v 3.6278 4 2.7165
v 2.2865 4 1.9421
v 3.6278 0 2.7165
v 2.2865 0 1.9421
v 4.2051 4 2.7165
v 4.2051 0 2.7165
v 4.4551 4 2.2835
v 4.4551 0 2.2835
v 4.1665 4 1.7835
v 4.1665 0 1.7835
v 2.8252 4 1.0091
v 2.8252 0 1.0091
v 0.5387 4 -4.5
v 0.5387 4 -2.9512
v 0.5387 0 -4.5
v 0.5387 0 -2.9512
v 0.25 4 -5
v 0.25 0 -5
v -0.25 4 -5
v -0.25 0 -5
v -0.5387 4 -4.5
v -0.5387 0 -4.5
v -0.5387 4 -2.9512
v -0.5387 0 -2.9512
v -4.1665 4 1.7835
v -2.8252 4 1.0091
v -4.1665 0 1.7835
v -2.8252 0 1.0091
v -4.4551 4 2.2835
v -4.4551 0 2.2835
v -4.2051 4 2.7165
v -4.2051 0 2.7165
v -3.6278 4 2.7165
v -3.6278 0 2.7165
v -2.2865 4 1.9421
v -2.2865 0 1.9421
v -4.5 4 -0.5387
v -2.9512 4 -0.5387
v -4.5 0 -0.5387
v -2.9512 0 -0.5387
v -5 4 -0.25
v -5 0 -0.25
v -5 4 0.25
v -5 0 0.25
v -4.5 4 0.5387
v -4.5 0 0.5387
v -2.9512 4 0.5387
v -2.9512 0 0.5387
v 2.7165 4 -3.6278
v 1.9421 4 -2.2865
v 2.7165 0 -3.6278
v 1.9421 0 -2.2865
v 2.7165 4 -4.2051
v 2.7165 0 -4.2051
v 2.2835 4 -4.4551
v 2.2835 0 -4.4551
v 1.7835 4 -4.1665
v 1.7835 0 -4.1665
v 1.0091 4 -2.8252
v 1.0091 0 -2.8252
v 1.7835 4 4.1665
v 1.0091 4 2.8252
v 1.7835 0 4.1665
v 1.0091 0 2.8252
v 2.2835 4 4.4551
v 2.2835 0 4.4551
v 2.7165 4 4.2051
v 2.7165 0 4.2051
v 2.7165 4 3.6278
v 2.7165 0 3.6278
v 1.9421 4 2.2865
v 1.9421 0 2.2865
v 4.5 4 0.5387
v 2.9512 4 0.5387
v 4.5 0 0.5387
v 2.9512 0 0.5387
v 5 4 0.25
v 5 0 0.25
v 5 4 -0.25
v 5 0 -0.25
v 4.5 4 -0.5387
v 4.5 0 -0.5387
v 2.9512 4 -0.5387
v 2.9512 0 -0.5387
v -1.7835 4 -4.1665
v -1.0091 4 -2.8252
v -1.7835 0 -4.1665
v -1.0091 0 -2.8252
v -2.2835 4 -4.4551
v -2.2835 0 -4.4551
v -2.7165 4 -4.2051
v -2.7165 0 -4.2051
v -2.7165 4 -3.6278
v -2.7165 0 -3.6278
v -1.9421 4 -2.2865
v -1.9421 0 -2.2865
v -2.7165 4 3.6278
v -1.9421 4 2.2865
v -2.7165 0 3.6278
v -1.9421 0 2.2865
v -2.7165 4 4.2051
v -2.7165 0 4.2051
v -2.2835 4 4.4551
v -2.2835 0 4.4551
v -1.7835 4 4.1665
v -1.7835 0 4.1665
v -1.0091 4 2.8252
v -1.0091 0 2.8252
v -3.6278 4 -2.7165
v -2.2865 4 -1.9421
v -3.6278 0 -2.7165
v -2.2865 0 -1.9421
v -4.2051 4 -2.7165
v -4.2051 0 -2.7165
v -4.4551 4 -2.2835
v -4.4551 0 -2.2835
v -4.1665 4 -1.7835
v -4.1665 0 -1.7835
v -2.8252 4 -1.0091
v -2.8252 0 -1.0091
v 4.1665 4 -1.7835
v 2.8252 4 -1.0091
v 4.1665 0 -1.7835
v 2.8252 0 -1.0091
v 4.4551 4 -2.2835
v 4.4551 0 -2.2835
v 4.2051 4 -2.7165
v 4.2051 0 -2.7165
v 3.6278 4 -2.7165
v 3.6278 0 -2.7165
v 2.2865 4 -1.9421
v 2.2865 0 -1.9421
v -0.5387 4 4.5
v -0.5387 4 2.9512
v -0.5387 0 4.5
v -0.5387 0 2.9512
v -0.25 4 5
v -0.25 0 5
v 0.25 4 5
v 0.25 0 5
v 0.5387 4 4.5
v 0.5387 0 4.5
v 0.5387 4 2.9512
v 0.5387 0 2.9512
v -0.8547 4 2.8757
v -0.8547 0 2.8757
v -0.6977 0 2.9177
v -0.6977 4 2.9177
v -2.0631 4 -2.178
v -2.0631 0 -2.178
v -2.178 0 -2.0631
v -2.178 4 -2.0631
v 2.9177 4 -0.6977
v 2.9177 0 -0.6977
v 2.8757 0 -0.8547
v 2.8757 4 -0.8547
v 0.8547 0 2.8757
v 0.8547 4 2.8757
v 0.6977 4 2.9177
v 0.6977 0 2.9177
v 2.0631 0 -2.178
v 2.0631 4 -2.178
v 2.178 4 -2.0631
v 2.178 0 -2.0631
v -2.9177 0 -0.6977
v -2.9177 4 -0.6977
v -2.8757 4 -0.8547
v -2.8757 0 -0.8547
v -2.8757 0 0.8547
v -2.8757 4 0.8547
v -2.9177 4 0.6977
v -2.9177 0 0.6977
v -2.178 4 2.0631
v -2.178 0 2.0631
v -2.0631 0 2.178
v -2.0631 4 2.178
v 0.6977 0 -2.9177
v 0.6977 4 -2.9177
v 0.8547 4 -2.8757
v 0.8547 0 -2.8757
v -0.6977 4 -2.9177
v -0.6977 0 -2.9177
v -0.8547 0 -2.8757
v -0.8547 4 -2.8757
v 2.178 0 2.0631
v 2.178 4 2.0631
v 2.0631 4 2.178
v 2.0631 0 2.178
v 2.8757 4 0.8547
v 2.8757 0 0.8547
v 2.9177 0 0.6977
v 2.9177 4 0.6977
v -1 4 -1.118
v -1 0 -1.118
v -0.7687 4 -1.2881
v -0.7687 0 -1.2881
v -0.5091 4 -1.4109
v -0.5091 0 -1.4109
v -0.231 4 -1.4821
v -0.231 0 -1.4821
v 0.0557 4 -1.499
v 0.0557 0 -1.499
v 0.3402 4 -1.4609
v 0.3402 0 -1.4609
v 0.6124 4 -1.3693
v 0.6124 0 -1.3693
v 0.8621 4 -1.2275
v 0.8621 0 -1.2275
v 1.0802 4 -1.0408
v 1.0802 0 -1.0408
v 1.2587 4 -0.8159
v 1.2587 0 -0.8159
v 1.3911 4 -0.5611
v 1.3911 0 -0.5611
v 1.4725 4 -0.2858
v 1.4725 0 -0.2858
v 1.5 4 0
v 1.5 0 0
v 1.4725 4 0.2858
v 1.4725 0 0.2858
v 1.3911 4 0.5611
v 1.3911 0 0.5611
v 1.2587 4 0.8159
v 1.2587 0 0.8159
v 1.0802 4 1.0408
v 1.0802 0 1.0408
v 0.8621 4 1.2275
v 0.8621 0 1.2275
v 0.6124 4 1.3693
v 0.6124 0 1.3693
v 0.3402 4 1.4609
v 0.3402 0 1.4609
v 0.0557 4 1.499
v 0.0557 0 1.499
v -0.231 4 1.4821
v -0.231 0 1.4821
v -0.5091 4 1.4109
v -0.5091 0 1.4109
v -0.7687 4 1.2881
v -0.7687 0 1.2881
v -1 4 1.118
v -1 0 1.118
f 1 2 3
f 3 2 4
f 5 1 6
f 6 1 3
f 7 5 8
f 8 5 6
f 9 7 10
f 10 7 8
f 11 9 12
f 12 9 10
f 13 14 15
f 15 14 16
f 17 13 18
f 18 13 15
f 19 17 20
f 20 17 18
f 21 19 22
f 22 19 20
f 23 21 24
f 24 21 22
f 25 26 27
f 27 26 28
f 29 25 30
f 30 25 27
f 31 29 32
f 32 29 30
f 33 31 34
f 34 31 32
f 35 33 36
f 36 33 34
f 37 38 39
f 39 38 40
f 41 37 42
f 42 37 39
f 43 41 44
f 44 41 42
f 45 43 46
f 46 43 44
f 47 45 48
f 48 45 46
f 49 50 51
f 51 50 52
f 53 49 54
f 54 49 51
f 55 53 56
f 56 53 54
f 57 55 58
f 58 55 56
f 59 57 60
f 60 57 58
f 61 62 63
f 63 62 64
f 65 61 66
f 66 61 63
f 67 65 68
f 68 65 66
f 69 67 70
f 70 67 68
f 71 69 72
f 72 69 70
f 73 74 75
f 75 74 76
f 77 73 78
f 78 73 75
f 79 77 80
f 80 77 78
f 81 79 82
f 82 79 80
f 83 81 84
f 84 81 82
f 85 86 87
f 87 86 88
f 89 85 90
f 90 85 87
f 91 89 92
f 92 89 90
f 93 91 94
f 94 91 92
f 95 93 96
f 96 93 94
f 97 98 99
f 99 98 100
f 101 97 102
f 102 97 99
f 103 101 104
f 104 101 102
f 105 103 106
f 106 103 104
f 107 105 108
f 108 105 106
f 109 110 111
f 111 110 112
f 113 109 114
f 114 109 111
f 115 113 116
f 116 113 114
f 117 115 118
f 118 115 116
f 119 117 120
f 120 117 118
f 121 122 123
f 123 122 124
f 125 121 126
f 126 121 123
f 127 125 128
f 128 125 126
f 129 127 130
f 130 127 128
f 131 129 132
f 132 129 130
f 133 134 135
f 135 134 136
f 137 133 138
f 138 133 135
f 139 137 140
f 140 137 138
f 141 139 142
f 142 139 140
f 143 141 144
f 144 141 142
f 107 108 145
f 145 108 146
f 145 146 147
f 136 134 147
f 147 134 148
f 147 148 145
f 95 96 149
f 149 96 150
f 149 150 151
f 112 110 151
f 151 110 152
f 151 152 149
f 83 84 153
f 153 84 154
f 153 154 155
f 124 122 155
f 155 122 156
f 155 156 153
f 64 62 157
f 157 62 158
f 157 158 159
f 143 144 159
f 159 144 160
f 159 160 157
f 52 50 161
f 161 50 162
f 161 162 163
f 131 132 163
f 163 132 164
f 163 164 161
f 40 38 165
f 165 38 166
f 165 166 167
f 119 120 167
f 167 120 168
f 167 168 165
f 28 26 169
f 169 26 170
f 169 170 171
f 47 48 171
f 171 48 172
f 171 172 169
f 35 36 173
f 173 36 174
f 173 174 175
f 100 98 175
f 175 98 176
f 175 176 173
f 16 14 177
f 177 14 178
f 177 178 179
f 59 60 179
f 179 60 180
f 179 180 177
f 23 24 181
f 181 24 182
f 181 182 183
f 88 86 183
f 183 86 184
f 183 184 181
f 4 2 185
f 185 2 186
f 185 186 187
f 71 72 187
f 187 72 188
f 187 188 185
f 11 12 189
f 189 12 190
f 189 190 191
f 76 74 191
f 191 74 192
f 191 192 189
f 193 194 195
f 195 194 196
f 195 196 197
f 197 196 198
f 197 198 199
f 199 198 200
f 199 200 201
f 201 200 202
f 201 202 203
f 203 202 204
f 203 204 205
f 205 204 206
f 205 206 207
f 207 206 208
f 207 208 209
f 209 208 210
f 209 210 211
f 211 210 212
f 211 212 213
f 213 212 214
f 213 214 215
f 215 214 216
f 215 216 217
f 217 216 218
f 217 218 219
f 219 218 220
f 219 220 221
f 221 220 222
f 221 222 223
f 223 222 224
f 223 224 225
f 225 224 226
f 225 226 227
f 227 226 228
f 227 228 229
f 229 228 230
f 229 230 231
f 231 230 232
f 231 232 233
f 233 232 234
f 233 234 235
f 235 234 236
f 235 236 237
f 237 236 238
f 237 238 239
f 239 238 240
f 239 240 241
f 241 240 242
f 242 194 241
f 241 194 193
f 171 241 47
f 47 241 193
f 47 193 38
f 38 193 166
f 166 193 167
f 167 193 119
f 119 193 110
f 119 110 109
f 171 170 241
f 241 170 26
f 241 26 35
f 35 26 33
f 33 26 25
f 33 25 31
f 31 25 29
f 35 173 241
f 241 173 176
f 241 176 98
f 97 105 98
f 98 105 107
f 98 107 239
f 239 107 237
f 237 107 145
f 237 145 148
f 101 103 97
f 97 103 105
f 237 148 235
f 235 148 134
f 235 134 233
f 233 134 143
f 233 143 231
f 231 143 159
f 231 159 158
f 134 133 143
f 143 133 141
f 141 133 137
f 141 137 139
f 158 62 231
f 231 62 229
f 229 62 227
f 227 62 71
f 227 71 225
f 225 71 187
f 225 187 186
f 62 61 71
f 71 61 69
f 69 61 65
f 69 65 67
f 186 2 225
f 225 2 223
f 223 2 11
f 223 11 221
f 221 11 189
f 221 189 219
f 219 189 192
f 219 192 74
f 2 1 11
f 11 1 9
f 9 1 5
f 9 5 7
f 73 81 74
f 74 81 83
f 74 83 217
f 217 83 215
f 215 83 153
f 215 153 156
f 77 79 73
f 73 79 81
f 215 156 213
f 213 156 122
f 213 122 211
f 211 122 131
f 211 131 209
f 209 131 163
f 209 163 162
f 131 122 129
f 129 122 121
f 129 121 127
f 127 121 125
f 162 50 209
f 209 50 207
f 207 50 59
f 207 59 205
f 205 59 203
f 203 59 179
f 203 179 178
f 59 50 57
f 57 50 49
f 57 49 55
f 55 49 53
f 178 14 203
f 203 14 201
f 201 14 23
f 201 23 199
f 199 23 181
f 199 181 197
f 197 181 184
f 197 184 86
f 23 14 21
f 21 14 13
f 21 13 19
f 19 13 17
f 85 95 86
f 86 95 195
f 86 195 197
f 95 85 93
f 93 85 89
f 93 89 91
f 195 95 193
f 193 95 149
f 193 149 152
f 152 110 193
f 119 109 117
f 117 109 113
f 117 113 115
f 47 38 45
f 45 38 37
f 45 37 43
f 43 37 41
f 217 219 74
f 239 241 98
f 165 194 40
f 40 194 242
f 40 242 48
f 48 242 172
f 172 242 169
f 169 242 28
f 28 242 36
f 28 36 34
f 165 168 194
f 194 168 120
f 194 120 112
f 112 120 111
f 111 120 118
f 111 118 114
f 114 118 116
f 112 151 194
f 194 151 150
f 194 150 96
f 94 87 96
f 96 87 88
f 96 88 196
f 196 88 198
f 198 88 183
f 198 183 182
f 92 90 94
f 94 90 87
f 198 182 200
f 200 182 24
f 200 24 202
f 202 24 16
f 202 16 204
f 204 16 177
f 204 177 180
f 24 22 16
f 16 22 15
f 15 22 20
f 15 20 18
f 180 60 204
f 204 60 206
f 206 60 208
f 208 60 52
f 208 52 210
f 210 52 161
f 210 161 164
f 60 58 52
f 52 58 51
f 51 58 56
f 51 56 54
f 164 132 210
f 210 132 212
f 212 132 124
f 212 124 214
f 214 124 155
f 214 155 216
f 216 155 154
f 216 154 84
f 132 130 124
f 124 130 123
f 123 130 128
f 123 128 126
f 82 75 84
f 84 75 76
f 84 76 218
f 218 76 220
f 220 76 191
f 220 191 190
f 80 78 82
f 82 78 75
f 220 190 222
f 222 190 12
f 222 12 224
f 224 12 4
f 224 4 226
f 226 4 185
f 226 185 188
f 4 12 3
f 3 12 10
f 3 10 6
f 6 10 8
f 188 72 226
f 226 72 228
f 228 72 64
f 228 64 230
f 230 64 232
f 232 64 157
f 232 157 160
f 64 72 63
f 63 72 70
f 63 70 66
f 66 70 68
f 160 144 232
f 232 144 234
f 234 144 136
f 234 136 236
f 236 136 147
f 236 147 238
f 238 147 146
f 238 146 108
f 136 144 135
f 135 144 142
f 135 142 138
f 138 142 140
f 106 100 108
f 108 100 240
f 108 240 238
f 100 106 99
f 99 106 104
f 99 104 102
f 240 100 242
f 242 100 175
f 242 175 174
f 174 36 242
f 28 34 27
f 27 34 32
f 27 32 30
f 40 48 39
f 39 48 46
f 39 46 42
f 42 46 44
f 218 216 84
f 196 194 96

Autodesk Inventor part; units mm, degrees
ref_plane "YZ Plane" through (0, 0, 0) normal (1, 0, 0) x (0, 1, 0)
ref_plane "XZ Plane" through (0, 0, 0) normal (0, 1, 0) x (-1, 0, 0)
ref_plane "XY Plane" through (0, 0, 0) normal (0, 0, 1) x (1, 0, 0)
sketch "Esboço1" plane through (0, 0, 0) normal (0, 1, 0) x (-1, 0, 0)
  arc A0 (1, 1.118) -> (1, -1.118) centre (0, 0) ccw
  line L0 (1, 1.118) -> (1, -1.118)
  line L1 (0, 0) -> (-1.5, 0) construction
  line L2 (1.2, -1.2042) -> (1.2, 1.2042) construction
  arc A1 (1.2, 1.2042) -> (1.2, -1.2042) centre (0, 0) ccw construction
  circle A2 centre (0, 0) radius 3
  point P0 (1, 0)
  dimension "d0" = 3
  dimension "d1" = 2.5
  dimension "d2" = 0.2
  dimension "d3" = 6
extrude "Extrusão1" add sketch "Esboço1" along normal blind 4
sketch "Esboço2" plane through (0, 4, 0) normal (0, 1, 0) x (1, 0, 0)
  line L0 (0, 0) -> (-5, 0) construction
  line L1 (-5, 0) -> (-5, 0.25)
  line L2 (-5, 0.25) -> (-4.5, 0.5387)
  line L3 (-4.5, 0.5387) -> (-2.8873, 0.5387)
  line L4 (-5, 0) -> (-5, -0.25)
  line L5 (-5, -0.25) -> (-4.5, -0.5387)
  line L6 (-4.5, -0.5387) -> (-2.8873, -0.5387)
  line L7 (-4.3301, -2.5) -> (-4.4551, -2.2835)
  line L8 (-4.4551, -2.2835) -> (-4.1665, -1.7835)
  line L9 (-4.1665, -1.7835) -> (-2.7698, -0.9771)
  line L10 (-4.3301, -2.5) -> (-4.2051, -2.7165)
  line L11 (-4.2051, -2.7165) -> (-3.6278, -2.7165)
  line L12 (-3.6278, -2.7165) -> (-2.2311, -1.9102)
  line L13 (-2.5, -4.3301) -> (-2.7165, -4.2051)
  line L14 (-2.7165, -4.2051) -> (-2.7165, -3.6278)
  line L15 (-2.7165, -3.6278) -> (-1.9102, -2.2311)
  line L16 (-2.5, -4.3301) -> (-2.2835, -4.4551)
  line L17 (-2.2835, -4.4551) -> (-1.7835, -4.1665)
  line L18 (-1.7835, -4.1665) -> (-0.9771, -2.7698)
  line L19 (0, -5) -> (-0.25, -5)
  line L20 (-0.25, -5) -> (-0.5387, -4.5)
  line L21 (-0.5387, -4.5) -> (-0.5387, -2.8873)
  line L22 (0, -5) -> (0.25, -5)
  line L23 (0.25, -5) -> (0.5387, -4.5)
  line L24 (0.5387, -4.5) -> (0.5387, -2.8873)
  line L25 (2.5, -4.3301) -> (2.2835, -4.4551)
  line L26 (2.2835, -4.4551) -> (1.7835, -4.1665)
  line L27 (1.7835, -4.1665) -> (0.9771, -2.7698)
  line L28 (2.5, -4.3301) -> (2.7165, -4.2051)
  line L29 (2.7165, -4.2051) -> (2.7165, -3.6278)
  line L30 (2.7165, -3.6278) -> (1.9102, -2.2311)
  line L31 (4.3301, -2.5) -> (4.2051, -2.7165)
  line L32 (4.2051, -2.7165) -> (3.6278, -2.7165)
  line L33 (3.6278, -2.7165) -> (2.2311, -1.9102)
  line L34 (4.3301, -2.5) -> (4.4551, -2.2835)
  line L35 (4.4551, -2.2835) -> (4.1665, -1.7835)
  line L36 (4.1665, -1.7835) -> (2.7698, -0.9771)
  line L37 (5, 0) -> (5, -0.25)
  line L38 (5, -0.25) -> (4.5, -0.5387)
  line L39 (4.5, -0.5387) -> (2.8873, -0.5387)
  line L40 (5, 0) -> (5, 0.25)
  line L41 (5, 0.25) -> (4.5, 0.5387)
  line L42 (4.5, 0.5387) -> (2.8873, 0.5387)
  line L43 (4.3301, 2.5) -> (4.4551, 2.2835)
  line L44 (4.4551, 2.2835) -> (4.1665, 1.7835)
  line L45 (4.1665, 1.7835) -> (2.7698, 0.9771)
  line L46 (4.3301, 2.5) -> (4.2051, 2.7165)
  line L47 (4.2051, 2.7165) -> (3.6278, 2.7165)
  line L48 (3.6278, 2.7165) -> (2.2311, 1.9102)
  line L49 (2.5, 4.3301) -> (2.7165, 4.2051)
  line L50 (2.7165, 4.2051) -> (2.7165, 3.6278)
  line L51 (2.7165, 3.6278) -> (1.9102, 2.2311)
  line L52 (2.5, 4.3301) -> (2.2835, 4.4551)
  line L53 (2.2835, 4.4551) -> (1.7835, 4.1665)
  line L54 (1.7835, 4.1665) -> (0.9771, 2.7698)
  line L55 (0, 5) -> (0.25, 5)
  line L56 (0.25, 5) -> (0.5387, 4.5)
  line L57 (0.5387, 4.5) -> (0.5387, 2.8873)
  line L58 (0, 5) -> (-0.25, 5)
  line L59 (-0.25, 5) -> (-0.5387, 4.5)
  line L60 (-0.5387, 4.5) -> (-0.5387, 2.8873)
  line L61 (-2.5, 4.3301) -> (-2.2835, 4.4551)
  line L62 (-2.2835, 4.4551) -> (-1.7835, 4.1665)
  line L63 (-1.7835, 4.1665) -> (-0.9771, 2.7698)
  line L64 (-2.5, 4.3301) -> (-2.7165, 4.2051)
  line L65 (-2.7165, 4.2051) -> (-2.7165, 3.6278)
  line L66 (-2.7165, 3.6278) -> (-1.9102, 2.2311)
  line L67 (-4.3301, 2.5) -> (-4.2051, 2.7165)
  line L68 (-4.2051, 2.7165) -> (-3.6278, 2.7165)
  line L69 (-3.6278, 2.7165) -> (-2.2311, 1.9102)
  line L70 (-4.3301, 2.5) -> (-4.4551, 2.2835)
  line L71 (-4.4551, 2.2835) -> (-4.1665, 1.7835)
  line L72 (-4.1665, 1.7835) -> (-2.7698, 0.9771)
  circle A0 centre (0, 0) radius 3
  point P0 (-1.0091, -2.8252)
  point P1 (-1.9421, -2.2865)
  point P2 (-2.2865, -1.9421)
  point P3 (-2.8252, -1.0091)
  point P4 (-2.9512, -0.5387)
  point P5 (-2.9512, 0.5387)
  point P6 (-2.8252, 1.0091)
  point P7 (-2.2865, 1.9421)
  point P8 (-1.9421, 2.2865)
  point P9 (-1.0091, 2.8252)
  point P10 (-0.5387, 2.9512)
  point P11 (0.5387, 2.9512)
  point P12 (1.0091, 2.8252)
  point P13 (1.9421, 2.2865)
  point P14 (2.2865, 1.9421)
  point P15 (2.8252, 1.0091)
  point P16 (2.9512, 0.5387)
  point P17 (2.9512, -0.5387)
  point P18 (2.8252, -1.0091)
  point P19 (2.2865, -1.9421)
  point P20 (1.9421, -2.2865)
  point P21 (1.0091, -2.8252)
  point P22 (0.5387, -2.9512)
  point P23 (-0.5387, -2.9512)
  dimension "d15" = 6
  dimension "d6" = 5
  dimension "d7" = 0.25
  dimension "d9" = 60
  dimension "d10" = 0.5
  dimension "d13" = 360
extrude "Extrusão2" add sketch "Esboço2" against normal blind 4 contours L1 L2 L3 A0 L6 L5 L4 | L72 L71 L70 L67 L68 L69 A0 | A0 L12 L11 L10 L7 L8 L9 | L66 L65 L64 L61 L62 L63 A0 | A0 L18 L17 L16 L13 L14 L15 | L60 L59 L58 L55 L56 L57 A0 | A0 L24 L23 L22 L19 L20 L21 | L54 L53 L52 L49 L50 L51 A0 | A0 L30 L29 L28 L25 L26 L27 | L48 L47 L46 L43 L44 L45 A0 | A0 L36 L35 L34 L31 L32 L33 | L42 L41 L40 L37 L38 L39 A0
properties part number "Gear"
